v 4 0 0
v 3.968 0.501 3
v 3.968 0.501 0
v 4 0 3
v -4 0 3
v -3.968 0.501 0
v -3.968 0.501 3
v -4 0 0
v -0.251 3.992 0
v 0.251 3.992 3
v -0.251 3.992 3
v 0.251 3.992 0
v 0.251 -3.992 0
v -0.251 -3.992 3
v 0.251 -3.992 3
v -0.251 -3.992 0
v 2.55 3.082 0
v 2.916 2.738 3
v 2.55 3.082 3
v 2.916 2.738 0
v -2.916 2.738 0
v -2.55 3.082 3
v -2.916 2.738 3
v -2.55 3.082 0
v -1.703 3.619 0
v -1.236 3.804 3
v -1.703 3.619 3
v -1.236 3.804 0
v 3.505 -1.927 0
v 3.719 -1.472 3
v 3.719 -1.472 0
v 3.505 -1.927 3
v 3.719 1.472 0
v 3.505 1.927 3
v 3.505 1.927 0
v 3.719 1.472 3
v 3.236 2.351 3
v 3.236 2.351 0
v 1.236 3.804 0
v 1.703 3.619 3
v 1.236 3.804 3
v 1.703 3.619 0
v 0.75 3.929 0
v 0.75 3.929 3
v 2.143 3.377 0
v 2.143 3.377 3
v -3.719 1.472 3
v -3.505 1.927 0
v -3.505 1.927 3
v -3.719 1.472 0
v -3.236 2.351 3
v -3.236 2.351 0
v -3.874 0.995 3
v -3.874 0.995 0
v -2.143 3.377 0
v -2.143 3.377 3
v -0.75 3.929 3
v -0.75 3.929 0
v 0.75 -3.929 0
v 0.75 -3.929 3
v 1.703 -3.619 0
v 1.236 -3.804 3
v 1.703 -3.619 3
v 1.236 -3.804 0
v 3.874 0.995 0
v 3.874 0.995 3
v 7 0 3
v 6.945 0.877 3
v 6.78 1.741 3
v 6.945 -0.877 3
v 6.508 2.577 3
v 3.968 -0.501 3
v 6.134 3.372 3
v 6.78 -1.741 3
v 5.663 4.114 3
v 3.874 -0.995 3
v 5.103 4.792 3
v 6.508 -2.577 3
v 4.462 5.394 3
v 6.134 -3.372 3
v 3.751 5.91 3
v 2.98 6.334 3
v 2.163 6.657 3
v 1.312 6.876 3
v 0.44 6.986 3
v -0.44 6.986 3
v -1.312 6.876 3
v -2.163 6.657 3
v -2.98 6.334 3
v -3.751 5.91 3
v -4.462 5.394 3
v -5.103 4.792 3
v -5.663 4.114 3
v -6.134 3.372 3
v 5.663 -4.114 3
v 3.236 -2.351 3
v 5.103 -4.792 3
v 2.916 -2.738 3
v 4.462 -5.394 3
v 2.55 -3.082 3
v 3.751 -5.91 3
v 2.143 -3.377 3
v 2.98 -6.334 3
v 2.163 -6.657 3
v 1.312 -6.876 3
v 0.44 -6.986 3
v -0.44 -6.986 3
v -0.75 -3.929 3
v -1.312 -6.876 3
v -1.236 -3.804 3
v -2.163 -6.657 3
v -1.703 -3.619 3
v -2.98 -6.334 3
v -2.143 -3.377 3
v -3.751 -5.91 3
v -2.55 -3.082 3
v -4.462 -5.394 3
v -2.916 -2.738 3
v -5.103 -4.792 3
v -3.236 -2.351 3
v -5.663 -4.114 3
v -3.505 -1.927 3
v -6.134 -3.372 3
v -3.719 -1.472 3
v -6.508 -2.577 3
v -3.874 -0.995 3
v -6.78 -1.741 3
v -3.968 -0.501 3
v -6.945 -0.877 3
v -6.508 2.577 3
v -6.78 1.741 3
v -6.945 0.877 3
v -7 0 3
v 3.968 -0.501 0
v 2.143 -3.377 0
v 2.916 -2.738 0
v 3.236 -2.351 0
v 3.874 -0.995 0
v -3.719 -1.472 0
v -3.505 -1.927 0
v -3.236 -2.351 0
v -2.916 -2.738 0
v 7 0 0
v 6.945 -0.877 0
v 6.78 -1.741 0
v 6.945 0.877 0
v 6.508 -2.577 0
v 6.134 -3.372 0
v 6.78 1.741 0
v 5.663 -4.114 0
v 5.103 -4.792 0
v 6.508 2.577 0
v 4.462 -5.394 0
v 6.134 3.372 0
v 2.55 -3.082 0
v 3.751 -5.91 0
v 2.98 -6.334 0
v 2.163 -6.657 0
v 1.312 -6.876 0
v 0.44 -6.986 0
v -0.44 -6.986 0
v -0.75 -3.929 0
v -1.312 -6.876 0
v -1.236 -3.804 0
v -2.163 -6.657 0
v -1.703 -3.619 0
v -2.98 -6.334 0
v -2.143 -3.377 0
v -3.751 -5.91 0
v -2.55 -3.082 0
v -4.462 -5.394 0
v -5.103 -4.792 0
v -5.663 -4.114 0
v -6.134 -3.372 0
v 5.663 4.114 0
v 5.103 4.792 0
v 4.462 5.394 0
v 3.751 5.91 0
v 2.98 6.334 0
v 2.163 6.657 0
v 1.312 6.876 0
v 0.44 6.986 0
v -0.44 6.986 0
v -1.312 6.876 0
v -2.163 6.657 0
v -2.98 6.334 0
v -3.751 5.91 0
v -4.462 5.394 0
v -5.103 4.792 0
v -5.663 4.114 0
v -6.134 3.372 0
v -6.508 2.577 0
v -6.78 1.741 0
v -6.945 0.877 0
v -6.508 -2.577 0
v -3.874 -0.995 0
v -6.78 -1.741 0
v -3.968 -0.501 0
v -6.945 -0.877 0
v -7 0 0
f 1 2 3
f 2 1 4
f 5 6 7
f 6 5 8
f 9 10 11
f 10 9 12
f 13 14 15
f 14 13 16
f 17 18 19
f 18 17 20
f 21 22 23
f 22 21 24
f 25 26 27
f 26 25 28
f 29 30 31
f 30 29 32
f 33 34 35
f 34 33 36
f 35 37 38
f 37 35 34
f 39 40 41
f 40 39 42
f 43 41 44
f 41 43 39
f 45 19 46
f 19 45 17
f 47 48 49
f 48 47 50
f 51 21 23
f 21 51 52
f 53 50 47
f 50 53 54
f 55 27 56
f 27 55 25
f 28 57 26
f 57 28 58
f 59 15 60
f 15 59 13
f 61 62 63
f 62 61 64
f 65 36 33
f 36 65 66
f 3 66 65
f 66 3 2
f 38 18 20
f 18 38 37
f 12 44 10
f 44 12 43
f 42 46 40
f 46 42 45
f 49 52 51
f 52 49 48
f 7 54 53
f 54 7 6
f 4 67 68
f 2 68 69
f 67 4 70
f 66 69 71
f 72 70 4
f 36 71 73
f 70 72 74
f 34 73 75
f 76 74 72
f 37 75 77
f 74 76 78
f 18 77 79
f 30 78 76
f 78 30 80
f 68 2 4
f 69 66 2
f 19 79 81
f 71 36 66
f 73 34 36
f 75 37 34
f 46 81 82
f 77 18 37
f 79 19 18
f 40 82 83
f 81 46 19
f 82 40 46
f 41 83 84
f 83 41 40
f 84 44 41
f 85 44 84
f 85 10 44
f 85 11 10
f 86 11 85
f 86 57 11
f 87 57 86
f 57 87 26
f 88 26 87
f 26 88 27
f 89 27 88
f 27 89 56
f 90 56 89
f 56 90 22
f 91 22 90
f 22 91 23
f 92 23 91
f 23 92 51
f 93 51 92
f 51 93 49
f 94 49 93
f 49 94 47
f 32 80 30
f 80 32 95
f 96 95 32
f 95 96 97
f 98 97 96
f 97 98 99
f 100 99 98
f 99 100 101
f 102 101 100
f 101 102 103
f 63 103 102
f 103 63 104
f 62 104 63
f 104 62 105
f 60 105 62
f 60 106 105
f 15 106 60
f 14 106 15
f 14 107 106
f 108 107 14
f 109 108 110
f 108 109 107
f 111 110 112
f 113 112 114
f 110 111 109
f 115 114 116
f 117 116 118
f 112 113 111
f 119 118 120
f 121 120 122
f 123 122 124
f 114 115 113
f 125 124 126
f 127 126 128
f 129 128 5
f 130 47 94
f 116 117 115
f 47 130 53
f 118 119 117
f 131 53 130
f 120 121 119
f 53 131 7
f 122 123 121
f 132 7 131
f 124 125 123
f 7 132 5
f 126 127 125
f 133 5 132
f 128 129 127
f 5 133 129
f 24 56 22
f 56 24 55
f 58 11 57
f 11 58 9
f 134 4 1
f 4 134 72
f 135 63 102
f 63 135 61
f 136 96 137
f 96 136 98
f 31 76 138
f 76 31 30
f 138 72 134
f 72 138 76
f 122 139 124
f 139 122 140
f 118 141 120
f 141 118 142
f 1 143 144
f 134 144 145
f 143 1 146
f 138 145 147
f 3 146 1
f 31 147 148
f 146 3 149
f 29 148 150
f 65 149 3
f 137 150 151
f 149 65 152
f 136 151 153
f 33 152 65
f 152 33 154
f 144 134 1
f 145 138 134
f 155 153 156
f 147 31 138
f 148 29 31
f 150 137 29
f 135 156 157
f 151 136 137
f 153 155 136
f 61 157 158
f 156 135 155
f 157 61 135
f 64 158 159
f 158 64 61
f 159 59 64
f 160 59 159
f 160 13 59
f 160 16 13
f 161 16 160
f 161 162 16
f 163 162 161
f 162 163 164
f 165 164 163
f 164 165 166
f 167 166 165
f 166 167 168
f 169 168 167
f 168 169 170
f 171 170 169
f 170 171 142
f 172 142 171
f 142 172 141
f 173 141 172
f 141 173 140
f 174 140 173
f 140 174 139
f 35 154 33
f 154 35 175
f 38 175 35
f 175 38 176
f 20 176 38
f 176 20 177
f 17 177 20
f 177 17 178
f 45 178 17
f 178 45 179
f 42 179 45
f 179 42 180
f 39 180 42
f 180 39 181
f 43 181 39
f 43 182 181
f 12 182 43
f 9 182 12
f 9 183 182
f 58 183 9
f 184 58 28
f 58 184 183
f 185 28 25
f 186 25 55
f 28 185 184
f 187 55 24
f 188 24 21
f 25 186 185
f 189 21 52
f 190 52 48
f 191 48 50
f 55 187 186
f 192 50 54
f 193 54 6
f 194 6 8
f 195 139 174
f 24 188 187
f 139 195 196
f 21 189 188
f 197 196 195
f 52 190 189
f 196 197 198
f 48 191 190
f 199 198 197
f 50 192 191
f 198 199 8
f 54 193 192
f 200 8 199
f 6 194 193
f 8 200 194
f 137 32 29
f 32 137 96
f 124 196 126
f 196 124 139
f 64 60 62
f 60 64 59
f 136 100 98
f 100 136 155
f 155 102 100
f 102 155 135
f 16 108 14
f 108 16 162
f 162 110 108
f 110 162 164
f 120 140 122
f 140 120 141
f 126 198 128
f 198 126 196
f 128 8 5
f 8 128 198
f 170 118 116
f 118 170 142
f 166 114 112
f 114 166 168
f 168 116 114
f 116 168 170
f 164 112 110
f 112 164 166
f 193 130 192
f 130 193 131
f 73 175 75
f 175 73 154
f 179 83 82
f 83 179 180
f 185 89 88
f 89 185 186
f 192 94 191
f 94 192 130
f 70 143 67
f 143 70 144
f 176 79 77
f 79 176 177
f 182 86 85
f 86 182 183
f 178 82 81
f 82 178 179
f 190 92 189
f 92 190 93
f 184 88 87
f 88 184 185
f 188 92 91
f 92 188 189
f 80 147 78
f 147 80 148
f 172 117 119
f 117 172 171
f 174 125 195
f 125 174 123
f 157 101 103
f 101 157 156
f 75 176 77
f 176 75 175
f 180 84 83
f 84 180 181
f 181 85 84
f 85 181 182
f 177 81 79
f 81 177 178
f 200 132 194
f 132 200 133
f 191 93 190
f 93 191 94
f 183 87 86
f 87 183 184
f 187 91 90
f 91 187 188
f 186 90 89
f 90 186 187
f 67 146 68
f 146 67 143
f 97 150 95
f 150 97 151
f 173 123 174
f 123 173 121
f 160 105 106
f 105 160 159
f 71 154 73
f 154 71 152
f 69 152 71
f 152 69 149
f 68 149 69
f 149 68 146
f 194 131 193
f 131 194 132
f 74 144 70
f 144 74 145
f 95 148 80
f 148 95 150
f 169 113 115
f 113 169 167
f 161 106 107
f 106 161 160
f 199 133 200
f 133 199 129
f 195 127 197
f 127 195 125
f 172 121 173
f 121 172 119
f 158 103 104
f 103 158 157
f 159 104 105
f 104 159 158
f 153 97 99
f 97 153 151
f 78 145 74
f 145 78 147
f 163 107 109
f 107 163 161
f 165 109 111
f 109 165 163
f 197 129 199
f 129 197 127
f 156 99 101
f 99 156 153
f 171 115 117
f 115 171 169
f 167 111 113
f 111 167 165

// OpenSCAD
$fn = 50;


difference() {
	union() {
		cylinder(h = 3, r = 7.0000000000);
	}
	union() {
		#translate(v = [0.0000000000, 0.0000000000, -100.0000000000]) {
			cylinder(h = 200, r = 3.0000000000);
		}
		#translate(v = [0.0000000000, 0.0000000000, -100.0000000000]) {
			cylinder(h = 200, r = 3.0000000000);
		}
		#translate(v = [0.0000000000, 0.0000000000, -100.0000000000]) {
			cylinder(h = 200, r = 3.0000000000);
		}
		#translate(v = [0.0000000000, 0.0000000000, -100.0000000000]) {
			cylinder(h = 200, r = 3.0000000000);
		}
		#cylinder(h = 3, r = 4.0000000000);
	}
}
